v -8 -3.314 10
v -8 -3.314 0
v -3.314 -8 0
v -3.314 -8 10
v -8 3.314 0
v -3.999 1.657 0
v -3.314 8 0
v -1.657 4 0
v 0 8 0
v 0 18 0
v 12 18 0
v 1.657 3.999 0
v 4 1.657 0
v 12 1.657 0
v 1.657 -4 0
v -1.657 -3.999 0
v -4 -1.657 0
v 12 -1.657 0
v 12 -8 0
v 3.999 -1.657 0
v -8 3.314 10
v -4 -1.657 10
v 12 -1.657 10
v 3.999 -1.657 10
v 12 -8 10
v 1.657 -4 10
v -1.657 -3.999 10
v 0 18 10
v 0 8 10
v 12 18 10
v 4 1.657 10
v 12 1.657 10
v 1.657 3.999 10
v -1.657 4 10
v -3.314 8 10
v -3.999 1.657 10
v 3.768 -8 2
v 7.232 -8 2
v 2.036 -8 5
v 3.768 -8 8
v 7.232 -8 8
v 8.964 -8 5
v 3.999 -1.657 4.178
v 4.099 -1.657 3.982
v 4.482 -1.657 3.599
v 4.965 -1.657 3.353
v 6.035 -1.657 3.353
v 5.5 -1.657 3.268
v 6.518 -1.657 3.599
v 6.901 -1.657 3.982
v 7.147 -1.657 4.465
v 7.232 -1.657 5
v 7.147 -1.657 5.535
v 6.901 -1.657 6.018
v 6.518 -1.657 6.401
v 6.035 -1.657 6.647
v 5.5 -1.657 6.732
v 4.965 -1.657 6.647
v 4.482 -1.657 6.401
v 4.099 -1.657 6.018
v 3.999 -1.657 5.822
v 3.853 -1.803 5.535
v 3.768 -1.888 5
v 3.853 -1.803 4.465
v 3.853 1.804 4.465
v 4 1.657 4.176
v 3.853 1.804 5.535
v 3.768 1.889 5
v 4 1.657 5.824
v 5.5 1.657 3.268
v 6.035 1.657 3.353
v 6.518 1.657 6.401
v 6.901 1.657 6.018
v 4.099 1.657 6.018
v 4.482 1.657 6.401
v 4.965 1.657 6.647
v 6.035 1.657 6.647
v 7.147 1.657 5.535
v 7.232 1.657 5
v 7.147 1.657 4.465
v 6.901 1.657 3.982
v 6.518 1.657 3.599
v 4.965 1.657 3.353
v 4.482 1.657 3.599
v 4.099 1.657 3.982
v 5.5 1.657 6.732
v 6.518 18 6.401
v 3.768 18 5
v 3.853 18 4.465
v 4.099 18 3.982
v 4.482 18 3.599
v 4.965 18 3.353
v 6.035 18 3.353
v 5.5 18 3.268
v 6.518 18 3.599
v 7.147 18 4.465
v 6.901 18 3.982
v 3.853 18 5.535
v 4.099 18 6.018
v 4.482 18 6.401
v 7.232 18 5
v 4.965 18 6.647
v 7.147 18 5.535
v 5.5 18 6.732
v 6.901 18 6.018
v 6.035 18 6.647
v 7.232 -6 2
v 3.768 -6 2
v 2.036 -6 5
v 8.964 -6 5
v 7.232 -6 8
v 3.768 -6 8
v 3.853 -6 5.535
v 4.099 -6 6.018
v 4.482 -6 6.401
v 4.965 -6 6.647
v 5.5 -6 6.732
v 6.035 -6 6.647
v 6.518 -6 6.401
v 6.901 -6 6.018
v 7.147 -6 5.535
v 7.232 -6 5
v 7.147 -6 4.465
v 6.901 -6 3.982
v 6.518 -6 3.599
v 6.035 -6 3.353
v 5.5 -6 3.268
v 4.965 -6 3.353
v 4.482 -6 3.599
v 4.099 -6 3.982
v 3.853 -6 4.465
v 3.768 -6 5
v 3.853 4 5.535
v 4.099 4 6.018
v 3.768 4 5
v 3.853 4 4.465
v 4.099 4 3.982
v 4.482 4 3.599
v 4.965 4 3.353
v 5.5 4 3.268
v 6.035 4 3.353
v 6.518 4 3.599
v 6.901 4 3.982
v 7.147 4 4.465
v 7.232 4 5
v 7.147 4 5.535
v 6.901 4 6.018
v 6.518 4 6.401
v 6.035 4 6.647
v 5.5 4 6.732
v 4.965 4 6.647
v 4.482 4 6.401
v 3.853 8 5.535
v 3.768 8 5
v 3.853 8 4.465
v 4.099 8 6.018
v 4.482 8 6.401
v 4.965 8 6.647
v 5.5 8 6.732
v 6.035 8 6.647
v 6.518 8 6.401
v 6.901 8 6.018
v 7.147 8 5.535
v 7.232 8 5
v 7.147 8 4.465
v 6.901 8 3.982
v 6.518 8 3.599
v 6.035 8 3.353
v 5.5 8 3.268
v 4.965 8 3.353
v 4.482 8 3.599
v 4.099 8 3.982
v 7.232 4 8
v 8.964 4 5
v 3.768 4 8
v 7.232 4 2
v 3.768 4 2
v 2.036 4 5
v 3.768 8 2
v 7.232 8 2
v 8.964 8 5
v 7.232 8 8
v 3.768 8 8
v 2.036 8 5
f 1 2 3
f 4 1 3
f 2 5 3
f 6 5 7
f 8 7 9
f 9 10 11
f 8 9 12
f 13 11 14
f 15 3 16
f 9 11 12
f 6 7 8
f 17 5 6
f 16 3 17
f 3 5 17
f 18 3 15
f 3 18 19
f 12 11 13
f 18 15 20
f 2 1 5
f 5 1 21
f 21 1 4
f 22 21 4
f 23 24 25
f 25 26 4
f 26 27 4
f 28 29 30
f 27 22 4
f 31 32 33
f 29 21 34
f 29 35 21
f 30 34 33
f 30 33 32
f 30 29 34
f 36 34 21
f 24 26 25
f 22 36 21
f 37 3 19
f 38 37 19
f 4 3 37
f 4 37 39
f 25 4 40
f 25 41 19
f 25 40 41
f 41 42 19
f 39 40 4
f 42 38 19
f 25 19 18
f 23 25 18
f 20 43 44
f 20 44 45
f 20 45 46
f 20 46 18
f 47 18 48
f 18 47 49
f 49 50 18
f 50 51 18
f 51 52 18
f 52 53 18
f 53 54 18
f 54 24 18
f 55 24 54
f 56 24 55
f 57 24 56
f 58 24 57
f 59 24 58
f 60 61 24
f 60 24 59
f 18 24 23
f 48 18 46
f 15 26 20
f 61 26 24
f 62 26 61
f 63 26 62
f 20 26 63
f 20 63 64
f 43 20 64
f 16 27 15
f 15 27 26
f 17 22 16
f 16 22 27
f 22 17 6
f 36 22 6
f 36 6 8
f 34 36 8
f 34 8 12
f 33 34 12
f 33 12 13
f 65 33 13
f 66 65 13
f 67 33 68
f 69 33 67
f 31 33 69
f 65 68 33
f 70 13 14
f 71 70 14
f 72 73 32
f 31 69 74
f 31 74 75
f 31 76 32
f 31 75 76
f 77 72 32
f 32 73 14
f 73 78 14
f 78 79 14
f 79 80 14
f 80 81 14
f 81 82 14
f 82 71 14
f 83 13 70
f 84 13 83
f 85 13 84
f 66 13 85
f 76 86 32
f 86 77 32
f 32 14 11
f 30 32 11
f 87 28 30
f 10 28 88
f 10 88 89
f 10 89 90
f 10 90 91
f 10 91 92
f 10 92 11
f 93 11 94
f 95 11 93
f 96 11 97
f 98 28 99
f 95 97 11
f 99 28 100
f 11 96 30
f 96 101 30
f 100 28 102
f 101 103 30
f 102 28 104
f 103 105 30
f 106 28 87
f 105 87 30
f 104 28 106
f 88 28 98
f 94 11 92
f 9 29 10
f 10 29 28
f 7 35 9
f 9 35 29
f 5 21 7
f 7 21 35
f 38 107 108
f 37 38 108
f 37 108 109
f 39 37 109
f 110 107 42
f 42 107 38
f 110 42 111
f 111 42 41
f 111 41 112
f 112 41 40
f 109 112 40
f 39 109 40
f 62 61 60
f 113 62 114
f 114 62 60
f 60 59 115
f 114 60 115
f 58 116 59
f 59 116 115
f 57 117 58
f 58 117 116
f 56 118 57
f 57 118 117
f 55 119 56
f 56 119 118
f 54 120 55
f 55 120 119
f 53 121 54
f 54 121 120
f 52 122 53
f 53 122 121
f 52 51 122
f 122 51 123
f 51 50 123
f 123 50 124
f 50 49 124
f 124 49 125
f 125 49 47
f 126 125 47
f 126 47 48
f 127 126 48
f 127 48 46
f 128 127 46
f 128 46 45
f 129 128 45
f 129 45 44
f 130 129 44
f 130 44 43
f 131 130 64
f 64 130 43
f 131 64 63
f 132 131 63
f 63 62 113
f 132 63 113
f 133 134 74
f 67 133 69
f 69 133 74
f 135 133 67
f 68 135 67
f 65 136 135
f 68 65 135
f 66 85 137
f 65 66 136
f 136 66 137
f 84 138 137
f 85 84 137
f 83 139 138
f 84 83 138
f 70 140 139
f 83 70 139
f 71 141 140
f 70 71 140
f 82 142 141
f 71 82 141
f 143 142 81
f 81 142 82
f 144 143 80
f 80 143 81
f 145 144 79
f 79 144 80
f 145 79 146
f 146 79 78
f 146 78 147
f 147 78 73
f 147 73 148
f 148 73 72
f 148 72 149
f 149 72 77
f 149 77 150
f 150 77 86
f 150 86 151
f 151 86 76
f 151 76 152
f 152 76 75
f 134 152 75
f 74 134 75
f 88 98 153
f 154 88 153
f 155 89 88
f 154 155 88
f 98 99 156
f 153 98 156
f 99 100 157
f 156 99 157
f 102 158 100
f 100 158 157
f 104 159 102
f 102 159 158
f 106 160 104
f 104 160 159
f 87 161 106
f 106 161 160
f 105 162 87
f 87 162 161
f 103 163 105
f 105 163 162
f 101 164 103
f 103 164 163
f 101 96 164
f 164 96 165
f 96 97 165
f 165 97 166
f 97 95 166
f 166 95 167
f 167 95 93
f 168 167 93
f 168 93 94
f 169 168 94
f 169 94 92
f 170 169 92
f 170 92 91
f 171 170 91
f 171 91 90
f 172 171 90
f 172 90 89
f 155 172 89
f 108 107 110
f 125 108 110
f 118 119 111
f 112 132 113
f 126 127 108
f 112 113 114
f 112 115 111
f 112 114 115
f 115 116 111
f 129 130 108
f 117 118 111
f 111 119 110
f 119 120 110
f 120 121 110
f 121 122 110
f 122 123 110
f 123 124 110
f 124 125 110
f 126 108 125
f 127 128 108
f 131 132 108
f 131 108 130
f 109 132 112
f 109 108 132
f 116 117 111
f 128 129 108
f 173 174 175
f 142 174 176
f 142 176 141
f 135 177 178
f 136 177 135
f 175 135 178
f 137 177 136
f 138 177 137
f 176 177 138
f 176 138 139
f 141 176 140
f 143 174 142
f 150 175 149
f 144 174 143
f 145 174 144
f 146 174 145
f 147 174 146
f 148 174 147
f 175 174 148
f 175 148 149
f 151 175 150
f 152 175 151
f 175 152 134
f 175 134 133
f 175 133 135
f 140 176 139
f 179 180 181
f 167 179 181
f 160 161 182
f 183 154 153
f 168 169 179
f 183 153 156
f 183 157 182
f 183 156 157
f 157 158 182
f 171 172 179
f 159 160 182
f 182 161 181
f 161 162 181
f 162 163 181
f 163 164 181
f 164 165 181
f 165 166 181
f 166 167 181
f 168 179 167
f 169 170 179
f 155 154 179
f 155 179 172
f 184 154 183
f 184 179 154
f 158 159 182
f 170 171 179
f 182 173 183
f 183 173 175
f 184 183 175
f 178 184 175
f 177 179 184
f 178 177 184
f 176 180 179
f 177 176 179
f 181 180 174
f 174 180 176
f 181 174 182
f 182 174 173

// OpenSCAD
include <wallace2.scad>;
bed_mount2();

module bed_mount2() difference() {
	linear_extrude(height = 10, convexity = 5) difference() {
		union() {
			rotate(180 / 8) circle((rod_size + 8) * da8, $fn = 8);
			translate([0, -rod_size / 2 - 4, 0]) square([rod_size / 2 + 8, max(rod_size + 8, rod_size / 2 + 4 + bed_mount_height)]);
		}
		rotate(180 / 8) circle(rod_size * da8, $fn = 8);
		translate([0, -rod_size / (1 + sqrt(2)) / 2, 0]) square([rod_size + 10, rod_size / (1 + sqrt(2))]);
	}
	translate([rod_size / 2 + 1.5, -rod_size / 2 - 6, 5]) rotate([-90, 0, 0]) {
		cylinder(r = m3_size * da6, h = max(rod_size + 12, rod_size / 2 + 7 + bed_mount_height, $fn = 6));
		cylinder(r = m3_nut_size * da6, h = 4, $fn = 6);
		translate([0,0,-rod_size / 2 + 8+10])#cylinder(r = m3_nut_size * da6, h = 4, $fn = 6);
	}
}
